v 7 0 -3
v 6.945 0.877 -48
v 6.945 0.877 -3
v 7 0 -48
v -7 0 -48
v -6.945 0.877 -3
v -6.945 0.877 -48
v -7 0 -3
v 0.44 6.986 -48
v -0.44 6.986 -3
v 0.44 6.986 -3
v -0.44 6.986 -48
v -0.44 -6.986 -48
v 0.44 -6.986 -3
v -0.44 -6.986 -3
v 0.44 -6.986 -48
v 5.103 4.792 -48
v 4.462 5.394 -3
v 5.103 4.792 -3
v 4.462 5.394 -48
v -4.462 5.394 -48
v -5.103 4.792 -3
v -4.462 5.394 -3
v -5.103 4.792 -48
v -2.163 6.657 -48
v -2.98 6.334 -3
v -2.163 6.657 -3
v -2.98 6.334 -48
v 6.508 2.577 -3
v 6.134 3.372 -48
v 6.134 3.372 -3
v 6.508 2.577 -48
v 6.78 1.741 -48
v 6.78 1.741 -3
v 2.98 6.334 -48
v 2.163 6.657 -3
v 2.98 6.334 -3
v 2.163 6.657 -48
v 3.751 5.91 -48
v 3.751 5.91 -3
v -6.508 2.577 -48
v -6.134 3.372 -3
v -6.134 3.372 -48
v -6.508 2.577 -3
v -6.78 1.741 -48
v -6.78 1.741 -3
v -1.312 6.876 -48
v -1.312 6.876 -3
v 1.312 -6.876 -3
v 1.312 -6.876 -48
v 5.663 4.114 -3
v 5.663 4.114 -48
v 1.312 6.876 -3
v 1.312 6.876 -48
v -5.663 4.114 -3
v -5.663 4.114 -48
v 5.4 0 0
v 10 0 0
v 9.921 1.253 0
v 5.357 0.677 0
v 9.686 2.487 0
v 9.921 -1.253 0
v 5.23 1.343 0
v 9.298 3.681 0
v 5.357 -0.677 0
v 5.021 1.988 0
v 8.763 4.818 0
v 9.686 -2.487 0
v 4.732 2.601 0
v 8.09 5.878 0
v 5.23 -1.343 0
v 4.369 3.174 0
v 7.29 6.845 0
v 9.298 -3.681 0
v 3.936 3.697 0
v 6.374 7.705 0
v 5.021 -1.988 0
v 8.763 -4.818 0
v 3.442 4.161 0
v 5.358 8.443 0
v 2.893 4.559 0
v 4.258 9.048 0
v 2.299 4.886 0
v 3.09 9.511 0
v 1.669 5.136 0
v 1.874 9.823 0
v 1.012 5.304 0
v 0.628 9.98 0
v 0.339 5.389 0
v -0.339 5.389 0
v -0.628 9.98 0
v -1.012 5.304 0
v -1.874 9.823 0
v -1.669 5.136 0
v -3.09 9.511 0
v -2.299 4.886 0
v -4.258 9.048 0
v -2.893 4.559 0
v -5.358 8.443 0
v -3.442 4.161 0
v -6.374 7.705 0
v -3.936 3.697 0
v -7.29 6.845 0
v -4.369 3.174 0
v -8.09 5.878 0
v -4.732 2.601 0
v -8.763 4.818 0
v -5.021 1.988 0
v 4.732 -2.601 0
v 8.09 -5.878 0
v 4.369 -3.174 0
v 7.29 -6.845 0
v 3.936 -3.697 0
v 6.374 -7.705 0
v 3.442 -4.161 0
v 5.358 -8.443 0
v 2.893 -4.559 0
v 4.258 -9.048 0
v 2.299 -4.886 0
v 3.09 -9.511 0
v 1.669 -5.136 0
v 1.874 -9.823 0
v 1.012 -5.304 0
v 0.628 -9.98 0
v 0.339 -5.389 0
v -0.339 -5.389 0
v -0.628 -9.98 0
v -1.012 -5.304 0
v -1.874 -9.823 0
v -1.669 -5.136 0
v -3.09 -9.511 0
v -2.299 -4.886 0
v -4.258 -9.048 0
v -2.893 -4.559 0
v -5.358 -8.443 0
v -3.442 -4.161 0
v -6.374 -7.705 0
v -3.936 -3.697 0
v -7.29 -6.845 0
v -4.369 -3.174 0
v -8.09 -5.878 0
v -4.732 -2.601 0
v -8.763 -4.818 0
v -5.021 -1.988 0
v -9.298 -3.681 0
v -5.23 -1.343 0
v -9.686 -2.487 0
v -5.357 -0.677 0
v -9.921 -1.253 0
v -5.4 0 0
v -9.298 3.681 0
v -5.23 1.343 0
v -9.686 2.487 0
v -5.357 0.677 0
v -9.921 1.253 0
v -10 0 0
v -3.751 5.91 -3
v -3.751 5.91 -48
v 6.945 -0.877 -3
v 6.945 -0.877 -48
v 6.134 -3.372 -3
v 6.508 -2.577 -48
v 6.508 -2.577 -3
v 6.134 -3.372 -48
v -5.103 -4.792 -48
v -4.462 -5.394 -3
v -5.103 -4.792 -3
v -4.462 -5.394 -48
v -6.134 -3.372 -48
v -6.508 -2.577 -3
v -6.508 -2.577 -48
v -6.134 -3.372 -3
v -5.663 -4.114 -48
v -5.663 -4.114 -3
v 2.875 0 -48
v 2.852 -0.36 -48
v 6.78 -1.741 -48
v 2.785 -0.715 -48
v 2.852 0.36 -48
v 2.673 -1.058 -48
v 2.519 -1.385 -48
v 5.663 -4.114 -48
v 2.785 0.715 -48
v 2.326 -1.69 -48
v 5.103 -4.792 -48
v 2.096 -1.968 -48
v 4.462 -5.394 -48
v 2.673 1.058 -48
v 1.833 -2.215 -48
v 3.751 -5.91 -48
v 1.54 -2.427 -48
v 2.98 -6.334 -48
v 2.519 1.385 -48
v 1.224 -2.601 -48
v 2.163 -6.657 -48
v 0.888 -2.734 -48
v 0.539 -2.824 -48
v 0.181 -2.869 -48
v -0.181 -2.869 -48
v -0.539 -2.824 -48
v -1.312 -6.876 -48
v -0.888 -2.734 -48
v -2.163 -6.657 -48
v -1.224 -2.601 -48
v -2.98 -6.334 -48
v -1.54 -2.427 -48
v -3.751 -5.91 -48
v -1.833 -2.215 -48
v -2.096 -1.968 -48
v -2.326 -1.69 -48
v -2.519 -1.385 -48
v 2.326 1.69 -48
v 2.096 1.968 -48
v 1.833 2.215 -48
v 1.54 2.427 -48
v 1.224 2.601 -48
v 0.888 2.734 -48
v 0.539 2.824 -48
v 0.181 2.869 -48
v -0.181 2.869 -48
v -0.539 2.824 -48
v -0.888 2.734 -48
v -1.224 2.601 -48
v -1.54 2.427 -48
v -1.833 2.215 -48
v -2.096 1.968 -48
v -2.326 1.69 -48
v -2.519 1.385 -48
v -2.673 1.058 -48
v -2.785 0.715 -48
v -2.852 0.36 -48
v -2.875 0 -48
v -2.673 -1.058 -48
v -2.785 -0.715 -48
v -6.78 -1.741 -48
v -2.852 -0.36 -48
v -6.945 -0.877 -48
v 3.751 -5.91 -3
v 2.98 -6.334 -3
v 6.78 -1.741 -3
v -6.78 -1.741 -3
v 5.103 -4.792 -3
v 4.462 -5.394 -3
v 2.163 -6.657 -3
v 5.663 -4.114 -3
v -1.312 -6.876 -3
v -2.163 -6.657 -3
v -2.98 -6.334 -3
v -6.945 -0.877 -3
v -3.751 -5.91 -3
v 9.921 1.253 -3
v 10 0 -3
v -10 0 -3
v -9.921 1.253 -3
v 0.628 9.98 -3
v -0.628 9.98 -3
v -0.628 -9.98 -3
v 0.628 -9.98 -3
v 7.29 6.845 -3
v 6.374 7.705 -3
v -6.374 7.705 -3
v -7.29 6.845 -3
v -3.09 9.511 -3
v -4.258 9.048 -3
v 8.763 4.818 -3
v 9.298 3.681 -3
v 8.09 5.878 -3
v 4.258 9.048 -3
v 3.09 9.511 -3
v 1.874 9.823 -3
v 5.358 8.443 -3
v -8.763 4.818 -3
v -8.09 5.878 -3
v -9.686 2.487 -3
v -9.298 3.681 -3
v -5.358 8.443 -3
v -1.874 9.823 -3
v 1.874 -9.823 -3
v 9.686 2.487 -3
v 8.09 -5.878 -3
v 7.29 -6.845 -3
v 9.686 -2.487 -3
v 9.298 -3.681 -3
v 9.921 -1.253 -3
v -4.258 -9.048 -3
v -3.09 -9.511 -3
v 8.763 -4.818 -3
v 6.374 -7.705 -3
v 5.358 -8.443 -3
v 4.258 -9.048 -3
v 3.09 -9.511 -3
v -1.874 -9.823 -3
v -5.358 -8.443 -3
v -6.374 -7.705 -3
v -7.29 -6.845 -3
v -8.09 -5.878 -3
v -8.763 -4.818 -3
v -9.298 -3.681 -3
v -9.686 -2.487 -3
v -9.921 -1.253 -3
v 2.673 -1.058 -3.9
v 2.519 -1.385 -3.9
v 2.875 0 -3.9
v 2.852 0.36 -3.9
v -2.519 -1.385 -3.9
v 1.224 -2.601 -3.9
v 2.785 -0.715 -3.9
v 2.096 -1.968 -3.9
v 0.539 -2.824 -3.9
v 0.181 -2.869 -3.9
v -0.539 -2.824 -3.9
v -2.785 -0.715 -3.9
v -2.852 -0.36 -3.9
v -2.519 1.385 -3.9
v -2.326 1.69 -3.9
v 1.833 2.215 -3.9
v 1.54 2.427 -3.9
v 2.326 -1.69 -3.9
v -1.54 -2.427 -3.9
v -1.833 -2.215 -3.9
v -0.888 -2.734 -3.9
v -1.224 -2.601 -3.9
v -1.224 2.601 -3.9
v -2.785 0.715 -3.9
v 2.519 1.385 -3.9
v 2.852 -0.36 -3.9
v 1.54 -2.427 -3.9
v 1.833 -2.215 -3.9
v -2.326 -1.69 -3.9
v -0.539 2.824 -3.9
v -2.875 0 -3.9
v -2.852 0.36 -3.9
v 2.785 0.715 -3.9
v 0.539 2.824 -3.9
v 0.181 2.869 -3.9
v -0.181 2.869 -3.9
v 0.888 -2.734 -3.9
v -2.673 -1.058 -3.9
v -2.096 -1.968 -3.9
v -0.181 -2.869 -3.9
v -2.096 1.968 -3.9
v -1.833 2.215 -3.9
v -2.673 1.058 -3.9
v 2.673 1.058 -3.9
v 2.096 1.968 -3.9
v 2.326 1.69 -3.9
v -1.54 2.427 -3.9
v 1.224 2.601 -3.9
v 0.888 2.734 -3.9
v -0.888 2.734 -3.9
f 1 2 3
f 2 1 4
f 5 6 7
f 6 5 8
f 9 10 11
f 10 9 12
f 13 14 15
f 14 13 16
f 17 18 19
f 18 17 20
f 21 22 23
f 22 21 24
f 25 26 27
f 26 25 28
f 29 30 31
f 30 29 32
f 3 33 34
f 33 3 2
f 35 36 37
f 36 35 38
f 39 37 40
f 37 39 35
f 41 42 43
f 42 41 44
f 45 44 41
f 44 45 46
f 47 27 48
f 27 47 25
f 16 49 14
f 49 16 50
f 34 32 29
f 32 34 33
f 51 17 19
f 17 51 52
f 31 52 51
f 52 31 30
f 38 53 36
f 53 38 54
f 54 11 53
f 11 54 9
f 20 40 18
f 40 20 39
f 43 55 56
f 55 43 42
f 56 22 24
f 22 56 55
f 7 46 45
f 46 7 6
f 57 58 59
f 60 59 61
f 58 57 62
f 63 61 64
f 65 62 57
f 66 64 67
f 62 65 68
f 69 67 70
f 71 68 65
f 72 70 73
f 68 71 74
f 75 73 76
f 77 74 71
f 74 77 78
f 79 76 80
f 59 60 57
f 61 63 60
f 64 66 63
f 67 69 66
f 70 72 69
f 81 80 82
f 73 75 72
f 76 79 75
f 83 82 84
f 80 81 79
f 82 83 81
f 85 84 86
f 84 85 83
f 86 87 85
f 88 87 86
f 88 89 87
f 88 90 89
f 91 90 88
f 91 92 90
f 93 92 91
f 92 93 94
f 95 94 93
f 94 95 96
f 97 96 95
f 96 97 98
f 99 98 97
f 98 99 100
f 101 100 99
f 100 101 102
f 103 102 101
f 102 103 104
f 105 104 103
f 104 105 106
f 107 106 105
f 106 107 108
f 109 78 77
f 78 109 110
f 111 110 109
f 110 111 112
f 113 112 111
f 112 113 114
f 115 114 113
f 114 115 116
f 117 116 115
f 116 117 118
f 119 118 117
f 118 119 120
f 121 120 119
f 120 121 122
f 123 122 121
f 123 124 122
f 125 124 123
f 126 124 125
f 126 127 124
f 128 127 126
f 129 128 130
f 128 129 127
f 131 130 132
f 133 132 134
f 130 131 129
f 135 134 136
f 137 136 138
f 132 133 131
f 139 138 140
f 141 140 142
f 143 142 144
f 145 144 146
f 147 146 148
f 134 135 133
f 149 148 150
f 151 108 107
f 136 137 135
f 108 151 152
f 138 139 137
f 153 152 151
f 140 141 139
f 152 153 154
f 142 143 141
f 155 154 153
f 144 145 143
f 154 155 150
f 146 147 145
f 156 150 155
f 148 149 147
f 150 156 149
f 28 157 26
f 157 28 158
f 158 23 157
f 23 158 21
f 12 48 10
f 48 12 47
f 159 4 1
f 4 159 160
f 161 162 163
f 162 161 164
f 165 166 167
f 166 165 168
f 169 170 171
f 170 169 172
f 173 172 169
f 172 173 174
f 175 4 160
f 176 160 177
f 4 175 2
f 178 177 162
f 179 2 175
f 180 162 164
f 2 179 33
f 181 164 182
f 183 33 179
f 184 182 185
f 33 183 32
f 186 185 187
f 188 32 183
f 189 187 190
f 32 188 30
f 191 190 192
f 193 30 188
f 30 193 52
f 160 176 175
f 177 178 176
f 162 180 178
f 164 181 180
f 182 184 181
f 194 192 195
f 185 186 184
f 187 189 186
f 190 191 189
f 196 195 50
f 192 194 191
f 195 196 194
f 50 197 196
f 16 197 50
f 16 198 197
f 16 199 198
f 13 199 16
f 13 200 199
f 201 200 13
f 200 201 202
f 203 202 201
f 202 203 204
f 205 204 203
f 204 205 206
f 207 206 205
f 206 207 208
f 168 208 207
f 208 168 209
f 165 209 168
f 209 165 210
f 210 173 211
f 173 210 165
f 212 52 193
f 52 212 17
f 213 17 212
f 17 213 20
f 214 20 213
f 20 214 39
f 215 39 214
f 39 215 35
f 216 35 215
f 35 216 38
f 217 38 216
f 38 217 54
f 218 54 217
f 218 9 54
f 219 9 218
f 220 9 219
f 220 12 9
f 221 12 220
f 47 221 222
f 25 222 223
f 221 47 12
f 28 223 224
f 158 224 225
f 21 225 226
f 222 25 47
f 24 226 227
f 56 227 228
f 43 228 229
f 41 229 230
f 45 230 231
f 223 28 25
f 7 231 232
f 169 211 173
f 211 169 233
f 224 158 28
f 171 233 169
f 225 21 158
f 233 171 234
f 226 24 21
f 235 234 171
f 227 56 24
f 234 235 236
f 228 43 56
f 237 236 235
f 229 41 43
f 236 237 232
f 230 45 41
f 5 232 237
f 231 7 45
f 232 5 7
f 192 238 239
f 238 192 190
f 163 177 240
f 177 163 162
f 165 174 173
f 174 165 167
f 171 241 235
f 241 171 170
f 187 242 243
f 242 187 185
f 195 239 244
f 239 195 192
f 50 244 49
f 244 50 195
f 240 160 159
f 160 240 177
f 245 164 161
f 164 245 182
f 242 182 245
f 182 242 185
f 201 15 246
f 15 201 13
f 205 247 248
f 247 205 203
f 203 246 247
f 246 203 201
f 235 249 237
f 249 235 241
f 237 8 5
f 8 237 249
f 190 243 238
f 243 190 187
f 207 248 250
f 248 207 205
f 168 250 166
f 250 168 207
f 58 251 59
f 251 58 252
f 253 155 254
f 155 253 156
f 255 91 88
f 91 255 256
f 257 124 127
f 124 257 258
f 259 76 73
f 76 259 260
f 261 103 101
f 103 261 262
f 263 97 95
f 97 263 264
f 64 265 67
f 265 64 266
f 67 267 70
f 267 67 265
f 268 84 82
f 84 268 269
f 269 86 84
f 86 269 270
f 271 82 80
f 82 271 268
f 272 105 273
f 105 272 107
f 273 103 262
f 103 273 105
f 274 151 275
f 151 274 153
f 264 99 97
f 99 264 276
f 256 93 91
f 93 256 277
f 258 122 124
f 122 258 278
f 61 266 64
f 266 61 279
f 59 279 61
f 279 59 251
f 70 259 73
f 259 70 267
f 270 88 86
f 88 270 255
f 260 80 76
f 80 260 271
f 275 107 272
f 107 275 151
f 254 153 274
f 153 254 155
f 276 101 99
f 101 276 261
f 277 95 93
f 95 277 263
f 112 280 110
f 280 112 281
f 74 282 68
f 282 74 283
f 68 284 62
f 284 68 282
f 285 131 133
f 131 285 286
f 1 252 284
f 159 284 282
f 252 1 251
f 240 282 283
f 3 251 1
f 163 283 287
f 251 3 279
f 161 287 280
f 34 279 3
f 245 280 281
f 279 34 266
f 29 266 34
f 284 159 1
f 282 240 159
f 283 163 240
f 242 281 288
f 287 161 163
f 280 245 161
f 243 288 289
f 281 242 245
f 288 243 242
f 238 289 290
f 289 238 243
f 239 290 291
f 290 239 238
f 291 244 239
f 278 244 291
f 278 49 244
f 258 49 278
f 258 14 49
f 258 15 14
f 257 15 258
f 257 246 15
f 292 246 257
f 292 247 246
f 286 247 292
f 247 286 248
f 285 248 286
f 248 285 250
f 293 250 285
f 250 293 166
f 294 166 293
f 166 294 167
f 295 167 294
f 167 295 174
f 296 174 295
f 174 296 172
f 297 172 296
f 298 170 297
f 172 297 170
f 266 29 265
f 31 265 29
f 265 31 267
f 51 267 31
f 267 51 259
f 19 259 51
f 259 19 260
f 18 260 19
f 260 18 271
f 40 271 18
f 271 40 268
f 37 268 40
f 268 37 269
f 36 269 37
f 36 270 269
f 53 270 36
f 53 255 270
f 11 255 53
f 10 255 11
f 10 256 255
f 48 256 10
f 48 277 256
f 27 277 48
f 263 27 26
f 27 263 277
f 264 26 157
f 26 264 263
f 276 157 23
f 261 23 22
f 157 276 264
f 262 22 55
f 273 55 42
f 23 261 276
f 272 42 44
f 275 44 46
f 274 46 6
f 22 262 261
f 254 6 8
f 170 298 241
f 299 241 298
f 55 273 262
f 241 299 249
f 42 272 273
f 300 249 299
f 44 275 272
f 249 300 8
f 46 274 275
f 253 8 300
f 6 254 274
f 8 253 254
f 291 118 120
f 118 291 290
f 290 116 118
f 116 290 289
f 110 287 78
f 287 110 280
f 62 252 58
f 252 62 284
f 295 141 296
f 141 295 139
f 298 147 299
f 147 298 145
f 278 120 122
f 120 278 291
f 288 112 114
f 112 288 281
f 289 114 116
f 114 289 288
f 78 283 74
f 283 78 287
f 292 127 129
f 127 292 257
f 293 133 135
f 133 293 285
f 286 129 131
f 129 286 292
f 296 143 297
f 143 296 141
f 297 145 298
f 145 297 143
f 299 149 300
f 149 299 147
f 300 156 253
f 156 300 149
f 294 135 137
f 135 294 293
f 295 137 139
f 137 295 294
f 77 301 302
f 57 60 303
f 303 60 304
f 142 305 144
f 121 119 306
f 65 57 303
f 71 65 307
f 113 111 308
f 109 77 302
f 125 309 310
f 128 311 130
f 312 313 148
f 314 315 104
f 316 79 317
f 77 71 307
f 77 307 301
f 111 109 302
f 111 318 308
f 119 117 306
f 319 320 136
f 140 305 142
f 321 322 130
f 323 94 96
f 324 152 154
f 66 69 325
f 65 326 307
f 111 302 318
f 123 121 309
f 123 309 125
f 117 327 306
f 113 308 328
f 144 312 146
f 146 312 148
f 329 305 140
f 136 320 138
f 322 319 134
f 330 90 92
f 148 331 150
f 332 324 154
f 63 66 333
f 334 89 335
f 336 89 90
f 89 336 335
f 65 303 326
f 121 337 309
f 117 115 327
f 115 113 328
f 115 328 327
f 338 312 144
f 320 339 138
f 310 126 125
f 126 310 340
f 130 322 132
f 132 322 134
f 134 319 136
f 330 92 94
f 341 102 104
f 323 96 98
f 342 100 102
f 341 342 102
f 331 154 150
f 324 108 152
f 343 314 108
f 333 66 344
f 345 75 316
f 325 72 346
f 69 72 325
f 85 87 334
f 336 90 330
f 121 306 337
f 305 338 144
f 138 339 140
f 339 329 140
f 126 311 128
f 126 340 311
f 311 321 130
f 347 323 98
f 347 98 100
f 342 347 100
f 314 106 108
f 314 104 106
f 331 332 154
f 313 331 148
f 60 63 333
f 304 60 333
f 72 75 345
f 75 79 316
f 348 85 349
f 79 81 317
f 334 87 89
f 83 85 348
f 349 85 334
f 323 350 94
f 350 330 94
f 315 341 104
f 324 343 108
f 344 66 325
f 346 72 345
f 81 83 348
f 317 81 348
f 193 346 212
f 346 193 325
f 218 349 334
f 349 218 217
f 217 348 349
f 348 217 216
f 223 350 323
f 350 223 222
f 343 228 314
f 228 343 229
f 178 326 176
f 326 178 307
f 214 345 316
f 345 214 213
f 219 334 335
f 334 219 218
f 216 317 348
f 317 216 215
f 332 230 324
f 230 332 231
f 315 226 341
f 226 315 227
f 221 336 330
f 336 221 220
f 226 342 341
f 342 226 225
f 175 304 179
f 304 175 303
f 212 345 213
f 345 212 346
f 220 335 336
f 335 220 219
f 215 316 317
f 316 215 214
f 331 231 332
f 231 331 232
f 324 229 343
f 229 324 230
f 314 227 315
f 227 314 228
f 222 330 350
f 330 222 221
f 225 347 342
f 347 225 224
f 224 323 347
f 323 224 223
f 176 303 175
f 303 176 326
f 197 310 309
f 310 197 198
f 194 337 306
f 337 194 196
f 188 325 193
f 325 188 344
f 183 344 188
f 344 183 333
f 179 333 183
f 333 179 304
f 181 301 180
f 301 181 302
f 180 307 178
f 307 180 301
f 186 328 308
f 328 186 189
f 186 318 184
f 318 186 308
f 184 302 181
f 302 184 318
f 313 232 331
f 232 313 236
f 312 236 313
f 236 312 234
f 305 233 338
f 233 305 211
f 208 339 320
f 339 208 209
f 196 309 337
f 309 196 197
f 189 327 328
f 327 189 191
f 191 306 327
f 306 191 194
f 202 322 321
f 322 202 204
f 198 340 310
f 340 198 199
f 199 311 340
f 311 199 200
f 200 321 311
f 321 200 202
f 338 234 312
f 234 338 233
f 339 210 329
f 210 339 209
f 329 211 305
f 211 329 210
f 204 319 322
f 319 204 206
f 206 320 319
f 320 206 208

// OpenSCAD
$fn = 50;


difference() {
	union() {
		translate(v = [0, 0, -48.0000000000]) {
			cylinder(h = 48, r = 7.0000000000);
		}
		translate(v = [0, 0, -3.0000000000]) {
			cylinder(h = 3, r = 10.0000000000);
		}
	}
	union() {
		translate(v = [0, 0, 0]) {
			rotate(a = [0, 0, 0]) {
				difference() {
					union() {
						#translate(v = [0, 0, -48.0000000000]) {
							cylinder(h = 48, r = 2.6000000000);
						}
						#translate(v = [0, 0, -3.9000000000]) {
							cylinder(h = 3.9000000000, r1 = 2.8750000000, r2 = 5.4000000000);
						}
						#translate(v = [0, 0, -48.0000000000]) {
							cylinder(h = 48, r = 2.8750000000);
						}
						#translate(v = [0, 0, -48.0000000000]) {
							cylinder(h = 48, r = 2.6000000000);
						}
					}
					union();
				}
			}
		}
	}
}
